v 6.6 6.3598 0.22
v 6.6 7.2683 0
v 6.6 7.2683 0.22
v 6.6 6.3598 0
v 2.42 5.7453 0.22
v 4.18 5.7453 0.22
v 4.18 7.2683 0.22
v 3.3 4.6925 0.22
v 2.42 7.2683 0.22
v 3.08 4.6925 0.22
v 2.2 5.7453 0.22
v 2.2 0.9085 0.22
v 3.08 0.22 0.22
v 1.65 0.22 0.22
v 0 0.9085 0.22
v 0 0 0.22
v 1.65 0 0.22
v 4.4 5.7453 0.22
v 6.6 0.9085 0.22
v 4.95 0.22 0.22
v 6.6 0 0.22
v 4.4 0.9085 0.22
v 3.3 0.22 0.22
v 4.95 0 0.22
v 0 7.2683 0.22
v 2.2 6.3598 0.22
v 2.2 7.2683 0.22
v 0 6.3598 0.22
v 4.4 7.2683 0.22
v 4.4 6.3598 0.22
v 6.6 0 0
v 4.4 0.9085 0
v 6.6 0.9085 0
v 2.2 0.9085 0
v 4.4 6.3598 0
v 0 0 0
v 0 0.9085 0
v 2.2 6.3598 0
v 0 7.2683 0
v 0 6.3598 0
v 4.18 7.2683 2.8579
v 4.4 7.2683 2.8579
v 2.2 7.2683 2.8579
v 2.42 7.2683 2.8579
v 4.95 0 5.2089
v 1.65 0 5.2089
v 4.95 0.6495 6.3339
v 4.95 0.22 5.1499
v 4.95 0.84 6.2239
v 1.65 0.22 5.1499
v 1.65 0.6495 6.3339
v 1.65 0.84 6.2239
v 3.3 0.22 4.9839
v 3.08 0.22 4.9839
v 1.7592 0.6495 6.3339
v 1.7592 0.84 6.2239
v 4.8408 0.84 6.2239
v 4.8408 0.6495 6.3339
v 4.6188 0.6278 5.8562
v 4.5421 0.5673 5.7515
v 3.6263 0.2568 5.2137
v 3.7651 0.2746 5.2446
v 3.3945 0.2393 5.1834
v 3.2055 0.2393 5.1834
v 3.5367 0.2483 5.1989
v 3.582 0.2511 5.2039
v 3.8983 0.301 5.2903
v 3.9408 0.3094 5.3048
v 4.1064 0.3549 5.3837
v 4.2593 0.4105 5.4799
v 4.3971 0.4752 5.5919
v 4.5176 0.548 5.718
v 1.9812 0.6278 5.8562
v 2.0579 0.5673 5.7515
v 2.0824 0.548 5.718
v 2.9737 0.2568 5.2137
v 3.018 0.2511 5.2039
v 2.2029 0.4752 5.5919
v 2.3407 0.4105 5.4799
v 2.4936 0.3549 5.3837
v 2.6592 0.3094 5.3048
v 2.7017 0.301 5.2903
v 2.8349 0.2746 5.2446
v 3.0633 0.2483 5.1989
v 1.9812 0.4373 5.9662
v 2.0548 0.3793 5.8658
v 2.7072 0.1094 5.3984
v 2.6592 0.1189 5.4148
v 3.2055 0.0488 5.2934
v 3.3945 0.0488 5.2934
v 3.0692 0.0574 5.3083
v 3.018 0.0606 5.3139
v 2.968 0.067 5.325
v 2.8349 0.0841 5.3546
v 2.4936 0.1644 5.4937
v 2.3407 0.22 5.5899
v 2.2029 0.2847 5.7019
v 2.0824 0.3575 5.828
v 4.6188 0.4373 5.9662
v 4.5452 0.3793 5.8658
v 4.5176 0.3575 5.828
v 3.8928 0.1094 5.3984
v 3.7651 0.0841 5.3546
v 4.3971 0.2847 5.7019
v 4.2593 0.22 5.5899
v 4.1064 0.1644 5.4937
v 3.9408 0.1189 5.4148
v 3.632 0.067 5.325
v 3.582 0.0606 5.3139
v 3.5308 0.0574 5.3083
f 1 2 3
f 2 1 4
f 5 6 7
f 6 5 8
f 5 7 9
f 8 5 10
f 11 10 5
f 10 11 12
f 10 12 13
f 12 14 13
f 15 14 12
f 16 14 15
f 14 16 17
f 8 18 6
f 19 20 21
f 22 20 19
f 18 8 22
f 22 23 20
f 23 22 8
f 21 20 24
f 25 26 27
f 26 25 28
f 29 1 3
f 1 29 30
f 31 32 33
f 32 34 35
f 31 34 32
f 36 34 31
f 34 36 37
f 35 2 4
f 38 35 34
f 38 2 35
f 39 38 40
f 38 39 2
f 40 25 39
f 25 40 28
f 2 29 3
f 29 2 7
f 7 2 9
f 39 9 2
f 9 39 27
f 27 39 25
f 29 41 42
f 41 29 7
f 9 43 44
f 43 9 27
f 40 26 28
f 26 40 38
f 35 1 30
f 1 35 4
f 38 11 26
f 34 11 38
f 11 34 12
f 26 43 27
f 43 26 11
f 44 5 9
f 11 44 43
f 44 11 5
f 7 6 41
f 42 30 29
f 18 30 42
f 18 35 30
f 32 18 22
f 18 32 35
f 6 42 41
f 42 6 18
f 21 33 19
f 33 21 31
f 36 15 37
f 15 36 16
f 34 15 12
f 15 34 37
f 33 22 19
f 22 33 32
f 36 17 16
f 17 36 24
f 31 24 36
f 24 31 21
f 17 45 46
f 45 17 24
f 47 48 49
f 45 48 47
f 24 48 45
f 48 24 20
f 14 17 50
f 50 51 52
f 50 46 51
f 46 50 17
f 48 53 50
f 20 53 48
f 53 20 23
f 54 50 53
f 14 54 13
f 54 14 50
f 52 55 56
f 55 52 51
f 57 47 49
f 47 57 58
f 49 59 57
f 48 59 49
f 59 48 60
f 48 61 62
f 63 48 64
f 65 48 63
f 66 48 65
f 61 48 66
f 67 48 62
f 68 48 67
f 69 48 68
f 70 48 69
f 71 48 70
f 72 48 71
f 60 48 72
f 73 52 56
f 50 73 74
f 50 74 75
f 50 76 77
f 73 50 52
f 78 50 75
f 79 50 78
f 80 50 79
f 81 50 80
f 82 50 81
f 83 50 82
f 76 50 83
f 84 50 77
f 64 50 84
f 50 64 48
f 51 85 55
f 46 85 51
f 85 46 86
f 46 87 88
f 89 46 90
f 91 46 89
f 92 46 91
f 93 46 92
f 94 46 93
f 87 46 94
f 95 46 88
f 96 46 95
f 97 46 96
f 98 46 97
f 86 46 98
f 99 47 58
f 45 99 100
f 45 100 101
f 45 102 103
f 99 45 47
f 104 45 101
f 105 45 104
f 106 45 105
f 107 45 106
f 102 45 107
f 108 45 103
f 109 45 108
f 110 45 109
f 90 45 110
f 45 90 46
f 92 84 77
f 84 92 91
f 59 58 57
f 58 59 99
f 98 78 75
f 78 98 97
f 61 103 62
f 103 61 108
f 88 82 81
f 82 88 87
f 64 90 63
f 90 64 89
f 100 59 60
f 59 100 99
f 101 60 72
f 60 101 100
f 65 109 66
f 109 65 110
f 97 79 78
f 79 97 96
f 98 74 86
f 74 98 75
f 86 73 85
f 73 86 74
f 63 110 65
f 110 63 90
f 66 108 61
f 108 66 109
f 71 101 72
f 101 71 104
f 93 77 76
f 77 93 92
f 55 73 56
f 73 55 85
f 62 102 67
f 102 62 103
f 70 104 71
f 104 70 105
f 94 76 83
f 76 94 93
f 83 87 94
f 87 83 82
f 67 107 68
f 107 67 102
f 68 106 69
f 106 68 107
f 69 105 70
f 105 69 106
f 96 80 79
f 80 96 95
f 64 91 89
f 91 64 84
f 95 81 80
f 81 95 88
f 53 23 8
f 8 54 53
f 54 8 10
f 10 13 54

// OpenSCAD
$fn = 50;

union() {
    translate([2.2, 0, 0]) {
        cube([2.2, 7.2683, 0.22]);
    };
    union() {
        translate([0, 6.3598, 0]) {
            cube([6.6, 0.9085, 0.22]);
        };
        translate([2.2, 7.2683, 0]) {
            rotate([180, 270, 0]) {
                linear_extrude(height=0.22) {
                    polygon([[0, 0], [2.8578838324886, 0], [0, 1.65]]);
                };
            };
        };
        translate([4.18, 7.2683, 0]) {
            rotate([180, 270, 0]) {
                linear_extrude(height=0.22) {
                    polygon([[0, 0], [2.8578838324886, 0], [0, 1.65]]);
                };
            };
        };
    };
    difference() {
        union() {
            cube([6.6, 0.9085, 0.22]);
            translate([1.65, 0, 0]) {
                cube([3.3, 0.22, 5.2089]);
            };
            translate([1.65, 0, 5.2089]) {
                rotate([-30, 0, 0]) {
                    cube([3.3, 0.22, 1.299]);
                };
            };
        };
        hull() {
            translate([3.3, 2.4560590089964, 5.6379]) {
                rotate([60, 0, 0]) {
                    cylinder(h=7, r2=1.505, r1=1.505);
                };
            };
            translate([3.3, 2.4560590089964, 7.1379]) {
                rotate([60, 0, 0]) {
                    cylinder(h=7, r2=2.107, r1=2.107);
                };
            };
        };
    };
    translate([3.3, 0.22, 0.22]) {
        rotate([0, 270, 0]) {
            linear_extrude(height=0.22) {
                polygon([[0, 0], [4.7639, 0], [0, 4.4724654248204]]);
            };
        };
    };
};
